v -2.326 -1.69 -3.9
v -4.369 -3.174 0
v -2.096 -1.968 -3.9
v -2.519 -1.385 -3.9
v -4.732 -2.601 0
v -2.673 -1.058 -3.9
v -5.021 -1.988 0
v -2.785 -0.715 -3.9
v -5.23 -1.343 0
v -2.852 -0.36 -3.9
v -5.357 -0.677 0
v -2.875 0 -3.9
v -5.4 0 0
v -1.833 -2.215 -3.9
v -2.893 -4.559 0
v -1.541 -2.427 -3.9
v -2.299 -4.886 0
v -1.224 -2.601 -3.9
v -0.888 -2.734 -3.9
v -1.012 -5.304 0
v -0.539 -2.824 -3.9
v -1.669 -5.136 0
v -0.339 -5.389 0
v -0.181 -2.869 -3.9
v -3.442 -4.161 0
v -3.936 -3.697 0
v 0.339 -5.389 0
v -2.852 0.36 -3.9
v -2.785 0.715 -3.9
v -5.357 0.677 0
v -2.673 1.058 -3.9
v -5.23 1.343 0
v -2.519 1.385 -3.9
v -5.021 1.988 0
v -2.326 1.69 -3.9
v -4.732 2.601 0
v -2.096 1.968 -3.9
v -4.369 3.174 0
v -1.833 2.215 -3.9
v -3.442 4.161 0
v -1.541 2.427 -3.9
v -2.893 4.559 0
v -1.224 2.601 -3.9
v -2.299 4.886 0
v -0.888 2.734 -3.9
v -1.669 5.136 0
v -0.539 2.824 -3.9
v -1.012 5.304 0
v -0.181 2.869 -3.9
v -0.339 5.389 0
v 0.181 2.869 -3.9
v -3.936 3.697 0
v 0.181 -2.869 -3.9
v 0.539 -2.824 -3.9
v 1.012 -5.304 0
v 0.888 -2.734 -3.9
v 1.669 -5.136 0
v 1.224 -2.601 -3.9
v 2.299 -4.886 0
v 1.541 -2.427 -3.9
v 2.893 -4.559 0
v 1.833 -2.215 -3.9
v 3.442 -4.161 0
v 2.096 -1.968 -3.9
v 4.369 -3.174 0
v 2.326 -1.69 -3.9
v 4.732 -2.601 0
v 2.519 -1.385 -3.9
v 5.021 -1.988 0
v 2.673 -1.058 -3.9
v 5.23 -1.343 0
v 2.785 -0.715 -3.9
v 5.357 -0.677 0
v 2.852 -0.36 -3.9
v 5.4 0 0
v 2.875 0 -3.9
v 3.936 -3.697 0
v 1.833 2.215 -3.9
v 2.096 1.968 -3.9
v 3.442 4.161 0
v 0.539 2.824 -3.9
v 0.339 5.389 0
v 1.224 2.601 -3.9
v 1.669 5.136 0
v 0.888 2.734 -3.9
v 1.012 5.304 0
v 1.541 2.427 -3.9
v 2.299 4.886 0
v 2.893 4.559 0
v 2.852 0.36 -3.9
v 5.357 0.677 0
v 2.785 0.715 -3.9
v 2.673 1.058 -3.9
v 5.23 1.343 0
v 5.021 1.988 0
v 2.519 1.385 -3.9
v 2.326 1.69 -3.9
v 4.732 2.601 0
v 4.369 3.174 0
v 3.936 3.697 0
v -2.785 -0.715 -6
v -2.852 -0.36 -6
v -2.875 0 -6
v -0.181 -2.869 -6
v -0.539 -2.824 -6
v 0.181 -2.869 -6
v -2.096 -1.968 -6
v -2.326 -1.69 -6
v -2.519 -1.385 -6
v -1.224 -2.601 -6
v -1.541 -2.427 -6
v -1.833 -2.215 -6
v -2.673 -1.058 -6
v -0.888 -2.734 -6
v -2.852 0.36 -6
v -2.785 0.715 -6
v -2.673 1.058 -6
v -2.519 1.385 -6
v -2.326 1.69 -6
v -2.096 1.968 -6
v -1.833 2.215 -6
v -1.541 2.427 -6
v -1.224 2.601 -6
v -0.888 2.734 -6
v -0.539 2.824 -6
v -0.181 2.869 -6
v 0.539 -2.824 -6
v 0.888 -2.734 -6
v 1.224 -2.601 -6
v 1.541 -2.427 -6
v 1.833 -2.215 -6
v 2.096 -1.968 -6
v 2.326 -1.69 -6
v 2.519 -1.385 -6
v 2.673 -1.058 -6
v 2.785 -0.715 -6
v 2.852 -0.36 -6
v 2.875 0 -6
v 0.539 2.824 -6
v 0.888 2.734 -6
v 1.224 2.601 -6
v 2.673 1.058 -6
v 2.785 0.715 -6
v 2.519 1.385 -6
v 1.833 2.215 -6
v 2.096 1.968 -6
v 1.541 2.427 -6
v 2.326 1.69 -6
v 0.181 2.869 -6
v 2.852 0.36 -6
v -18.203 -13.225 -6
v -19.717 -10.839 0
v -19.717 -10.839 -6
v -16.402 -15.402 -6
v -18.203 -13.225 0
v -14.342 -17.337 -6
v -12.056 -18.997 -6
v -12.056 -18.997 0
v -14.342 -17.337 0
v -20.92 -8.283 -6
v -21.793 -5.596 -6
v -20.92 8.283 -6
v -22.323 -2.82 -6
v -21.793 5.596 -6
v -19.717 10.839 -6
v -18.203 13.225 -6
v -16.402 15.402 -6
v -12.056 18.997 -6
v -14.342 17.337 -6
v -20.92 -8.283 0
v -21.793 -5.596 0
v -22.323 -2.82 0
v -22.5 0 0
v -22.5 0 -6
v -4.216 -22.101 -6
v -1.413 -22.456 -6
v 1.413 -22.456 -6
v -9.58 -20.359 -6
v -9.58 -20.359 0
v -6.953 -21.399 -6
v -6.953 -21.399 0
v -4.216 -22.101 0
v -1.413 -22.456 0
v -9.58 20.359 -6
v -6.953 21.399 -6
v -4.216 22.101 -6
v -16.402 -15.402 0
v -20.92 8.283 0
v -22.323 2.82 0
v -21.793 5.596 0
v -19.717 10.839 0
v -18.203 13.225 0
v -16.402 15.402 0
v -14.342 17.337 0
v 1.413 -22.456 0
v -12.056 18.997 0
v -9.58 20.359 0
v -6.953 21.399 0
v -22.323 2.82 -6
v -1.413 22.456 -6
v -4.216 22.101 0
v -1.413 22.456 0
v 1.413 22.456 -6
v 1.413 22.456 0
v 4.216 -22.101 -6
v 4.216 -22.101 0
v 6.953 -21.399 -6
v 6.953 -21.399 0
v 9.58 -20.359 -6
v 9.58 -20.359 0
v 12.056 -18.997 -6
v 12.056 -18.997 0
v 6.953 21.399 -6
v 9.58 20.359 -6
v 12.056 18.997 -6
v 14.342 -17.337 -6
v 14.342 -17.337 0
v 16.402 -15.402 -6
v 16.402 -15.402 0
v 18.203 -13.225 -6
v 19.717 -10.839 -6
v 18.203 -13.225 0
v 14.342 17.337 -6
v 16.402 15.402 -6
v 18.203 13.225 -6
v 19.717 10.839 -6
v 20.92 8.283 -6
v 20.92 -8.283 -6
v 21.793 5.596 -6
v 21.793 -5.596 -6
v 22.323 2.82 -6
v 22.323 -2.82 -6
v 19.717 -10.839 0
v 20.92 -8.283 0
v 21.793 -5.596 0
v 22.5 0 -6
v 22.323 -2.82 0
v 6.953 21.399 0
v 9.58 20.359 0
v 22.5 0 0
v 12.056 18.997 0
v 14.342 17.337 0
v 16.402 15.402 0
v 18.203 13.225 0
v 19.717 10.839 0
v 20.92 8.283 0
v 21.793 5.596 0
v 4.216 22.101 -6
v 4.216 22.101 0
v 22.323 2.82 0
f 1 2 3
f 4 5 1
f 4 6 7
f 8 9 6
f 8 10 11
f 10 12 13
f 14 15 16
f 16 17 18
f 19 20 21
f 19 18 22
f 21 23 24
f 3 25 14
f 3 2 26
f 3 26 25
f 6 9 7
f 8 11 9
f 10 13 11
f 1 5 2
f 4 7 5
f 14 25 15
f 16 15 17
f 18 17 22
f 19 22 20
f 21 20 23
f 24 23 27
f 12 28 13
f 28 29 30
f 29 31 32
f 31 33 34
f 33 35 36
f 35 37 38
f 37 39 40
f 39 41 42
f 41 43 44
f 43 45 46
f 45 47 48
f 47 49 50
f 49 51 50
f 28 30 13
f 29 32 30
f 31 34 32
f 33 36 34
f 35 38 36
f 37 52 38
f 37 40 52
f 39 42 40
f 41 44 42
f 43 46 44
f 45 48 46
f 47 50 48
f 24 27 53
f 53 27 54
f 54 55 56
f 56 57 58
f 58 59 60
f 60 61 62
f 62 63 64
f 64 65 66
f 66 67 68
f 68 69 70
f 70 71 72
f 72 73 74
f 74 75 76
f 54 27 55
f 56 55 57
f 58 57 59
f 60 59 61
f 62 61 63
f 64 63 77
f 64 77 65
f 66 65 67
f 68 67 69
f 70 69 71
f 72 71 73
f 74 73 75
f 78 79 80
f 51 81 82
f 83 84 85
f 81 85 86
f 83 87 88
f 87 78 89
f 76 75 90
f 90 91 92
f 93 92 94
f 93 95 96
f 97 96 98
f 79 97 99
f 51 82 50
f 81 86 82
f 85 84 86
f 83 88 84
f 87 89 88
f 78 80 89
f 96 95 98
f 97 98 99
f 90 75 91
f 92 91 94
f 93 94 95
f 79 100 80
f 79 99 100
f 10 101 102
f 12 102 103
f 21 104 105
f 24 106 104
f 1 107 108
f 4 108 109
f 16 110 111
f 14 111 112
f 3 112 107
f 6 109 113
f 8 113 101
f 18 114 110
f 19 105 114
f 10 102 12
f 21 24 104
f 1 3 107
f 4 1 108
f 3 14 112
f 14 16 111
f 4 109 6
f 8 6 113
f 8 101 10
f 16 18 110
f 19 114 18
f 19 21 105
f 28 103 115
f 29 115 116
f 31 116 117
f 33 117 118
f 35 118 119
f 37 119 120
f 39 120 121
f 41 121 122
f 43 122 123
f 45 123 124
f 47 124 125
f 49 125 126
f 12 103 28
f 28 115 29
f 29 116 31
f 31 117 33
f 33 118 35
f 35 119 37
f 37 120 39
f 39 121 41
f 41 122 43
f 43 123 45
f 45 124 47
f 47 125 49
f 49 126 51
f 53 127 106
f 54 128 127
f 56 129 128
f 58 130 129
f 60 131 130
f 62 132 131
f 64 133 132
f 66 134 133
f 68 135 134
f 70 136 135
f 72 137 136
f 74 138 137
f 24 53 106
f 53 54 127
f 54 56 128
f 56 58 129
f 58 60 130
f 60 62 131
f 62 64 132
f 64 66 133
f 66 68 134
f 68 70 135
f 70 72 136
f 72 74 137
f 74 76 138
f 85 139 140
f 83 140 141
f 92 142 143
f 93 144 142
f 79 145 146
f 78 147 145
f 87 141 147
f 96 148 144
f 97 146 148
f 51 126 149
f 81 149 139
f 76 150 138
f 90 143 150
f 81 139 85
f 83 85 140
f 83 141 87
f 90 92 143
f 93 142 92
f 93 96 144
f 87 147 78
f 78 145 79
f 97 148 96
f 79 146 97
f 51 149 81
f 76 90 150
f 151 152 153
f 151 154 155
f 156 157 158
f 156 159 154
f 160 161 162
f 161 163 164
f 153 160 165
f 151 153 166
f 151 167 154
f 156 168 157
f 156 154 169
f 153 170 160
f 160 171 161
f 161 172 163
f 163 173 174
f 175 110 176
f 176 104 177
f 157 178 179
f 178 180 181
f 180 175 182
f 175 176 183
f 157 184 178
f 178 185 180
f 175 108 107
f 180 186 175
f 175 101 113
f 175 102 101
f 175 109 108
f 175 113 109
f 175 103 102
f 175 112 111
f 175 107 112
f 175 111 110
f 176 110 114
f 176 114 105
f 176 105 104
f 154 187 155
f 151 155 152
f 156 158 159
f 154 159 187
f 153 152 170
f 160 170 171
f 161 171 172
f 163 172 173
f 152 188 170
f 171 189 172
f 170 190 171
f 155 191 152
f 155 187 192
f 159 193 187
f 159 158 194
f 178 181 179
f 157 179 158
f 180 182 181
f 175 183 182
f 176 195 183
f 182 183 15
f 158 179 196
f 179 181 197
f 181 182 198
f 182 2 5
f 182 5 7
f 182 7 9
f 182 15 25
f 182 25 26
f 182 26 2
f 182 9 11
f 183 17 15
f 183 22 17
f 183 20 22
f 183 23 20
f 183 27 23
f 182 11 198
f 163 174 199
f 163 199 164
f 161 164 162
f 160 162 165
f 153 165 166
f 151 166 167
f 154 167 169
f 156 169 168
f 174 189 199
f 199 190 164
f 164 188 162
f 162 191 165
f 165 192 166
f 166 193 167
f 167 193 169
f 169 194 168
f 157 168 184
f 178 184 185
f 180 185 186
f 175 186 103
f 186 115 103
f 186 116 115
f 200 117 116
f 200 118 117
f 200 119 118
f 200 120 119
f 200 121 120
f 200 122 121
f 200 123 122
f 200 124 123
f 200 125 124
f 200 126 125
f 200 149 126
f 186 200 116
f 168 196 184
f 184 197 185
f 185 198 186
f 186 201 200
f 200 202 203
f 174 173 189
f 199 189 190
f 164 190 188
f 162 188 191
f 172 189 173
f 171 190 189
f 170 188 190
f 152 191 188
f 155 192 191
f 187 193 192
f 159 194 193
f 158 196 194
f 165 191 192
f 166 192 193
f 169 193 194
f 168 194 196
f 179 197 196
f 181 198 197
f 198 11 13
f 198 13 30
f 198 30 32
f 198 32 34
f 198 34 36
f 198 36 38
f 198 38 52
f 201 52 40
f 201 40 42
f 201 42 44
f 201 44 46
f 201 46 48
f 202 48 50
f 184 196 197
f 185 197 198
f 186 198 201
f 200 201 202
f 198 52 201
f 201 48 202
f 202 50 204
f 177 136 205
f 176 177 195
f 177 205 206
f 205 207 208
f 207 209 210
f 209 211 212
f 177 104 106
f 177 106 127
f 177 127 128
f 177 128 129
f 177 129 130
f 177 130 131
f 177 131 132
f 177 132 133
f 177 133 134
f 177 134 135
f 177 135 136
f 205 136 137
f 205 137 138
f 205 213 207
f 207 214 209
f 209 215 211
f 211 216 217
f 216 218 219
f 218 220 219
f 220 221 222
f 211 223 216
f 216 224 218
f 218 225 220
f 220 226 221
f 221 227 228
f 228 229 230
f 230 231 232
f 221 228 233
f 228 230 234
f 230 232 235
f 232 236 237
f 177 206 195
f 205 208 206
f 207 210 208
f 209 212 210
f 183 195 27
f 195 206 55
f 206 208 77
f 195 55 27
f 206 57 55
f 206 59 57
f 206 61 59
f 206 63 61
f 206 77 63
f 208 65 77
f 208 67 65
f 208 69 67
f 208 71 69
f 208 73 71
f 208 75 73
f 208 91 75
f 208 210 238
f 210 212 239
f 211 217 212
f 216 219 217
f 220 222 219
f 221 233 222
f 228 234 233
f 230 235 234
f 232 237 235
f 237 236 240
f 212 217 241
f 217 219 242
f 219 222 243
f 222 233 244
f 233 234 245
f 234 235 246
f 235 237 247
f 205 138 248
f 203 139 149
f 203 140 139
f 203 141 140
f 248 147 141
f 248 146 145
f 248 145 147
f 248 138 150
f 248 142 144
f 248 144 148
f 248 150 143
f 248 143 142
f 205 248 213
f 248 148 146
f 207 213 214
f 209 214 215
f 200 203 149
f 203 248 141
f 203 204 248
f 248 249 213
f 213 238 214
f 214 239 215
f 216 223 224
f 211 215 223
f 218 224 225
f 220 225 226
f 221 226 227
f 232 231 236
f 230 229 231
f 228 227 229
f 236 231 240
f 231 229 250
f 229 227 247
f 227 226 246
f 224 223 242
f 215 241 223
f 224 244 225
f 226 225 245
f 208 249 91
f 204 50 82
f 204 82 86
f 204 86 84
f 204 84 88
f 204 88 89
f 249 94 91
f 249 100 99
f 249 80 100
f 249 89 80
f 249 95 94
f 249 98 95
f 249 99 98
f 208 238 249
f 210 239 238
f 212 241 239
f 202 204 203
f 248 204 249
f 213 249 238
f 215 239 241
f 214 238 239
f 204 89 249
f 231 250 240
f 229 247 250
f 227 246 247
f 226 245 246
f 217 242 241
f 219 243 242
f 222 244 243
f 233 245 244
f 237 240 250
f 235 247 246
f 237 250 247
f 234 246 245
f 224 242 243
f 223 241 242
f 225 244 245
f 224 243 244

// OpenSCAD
$fn = 50;


difference() {
	union() {
		translate(v = [0, 0, -6.0000000000]) {
			cylinder(h = 6, r = 22.5000000000);
		}
		#translate(v = [0, 0, -9.0000000000]) {
			cylinder(h = 9, r = 2.8750000000);
		}
	}
	union() {
		translate(v = [0, 0, 0]) {
			rotate(a = [0, 0, 0]) {
				difference() {
					union() {
						translate(v = [0, 0, -9.0000000000]) {
							cylinder(h = 9, r = 2.6000000000);
						}
						translate(v = [0, 0, -3.9000000000]) {
							cylinder(h = 3.9000000000, r1 = 2.8750000000, r2 = 5.4000000000);
						}
						translate(v = [0, 0, -9.0000000000]) {
							cylinder(h = 9, r = 2.8750000000);
						}
						translate(v = [0, 0, -9.0000000000]) {
							cylinder(h = 9, r = 2.6000000000);
						}
					}
					union();
				}
			}
		}
	}
}
